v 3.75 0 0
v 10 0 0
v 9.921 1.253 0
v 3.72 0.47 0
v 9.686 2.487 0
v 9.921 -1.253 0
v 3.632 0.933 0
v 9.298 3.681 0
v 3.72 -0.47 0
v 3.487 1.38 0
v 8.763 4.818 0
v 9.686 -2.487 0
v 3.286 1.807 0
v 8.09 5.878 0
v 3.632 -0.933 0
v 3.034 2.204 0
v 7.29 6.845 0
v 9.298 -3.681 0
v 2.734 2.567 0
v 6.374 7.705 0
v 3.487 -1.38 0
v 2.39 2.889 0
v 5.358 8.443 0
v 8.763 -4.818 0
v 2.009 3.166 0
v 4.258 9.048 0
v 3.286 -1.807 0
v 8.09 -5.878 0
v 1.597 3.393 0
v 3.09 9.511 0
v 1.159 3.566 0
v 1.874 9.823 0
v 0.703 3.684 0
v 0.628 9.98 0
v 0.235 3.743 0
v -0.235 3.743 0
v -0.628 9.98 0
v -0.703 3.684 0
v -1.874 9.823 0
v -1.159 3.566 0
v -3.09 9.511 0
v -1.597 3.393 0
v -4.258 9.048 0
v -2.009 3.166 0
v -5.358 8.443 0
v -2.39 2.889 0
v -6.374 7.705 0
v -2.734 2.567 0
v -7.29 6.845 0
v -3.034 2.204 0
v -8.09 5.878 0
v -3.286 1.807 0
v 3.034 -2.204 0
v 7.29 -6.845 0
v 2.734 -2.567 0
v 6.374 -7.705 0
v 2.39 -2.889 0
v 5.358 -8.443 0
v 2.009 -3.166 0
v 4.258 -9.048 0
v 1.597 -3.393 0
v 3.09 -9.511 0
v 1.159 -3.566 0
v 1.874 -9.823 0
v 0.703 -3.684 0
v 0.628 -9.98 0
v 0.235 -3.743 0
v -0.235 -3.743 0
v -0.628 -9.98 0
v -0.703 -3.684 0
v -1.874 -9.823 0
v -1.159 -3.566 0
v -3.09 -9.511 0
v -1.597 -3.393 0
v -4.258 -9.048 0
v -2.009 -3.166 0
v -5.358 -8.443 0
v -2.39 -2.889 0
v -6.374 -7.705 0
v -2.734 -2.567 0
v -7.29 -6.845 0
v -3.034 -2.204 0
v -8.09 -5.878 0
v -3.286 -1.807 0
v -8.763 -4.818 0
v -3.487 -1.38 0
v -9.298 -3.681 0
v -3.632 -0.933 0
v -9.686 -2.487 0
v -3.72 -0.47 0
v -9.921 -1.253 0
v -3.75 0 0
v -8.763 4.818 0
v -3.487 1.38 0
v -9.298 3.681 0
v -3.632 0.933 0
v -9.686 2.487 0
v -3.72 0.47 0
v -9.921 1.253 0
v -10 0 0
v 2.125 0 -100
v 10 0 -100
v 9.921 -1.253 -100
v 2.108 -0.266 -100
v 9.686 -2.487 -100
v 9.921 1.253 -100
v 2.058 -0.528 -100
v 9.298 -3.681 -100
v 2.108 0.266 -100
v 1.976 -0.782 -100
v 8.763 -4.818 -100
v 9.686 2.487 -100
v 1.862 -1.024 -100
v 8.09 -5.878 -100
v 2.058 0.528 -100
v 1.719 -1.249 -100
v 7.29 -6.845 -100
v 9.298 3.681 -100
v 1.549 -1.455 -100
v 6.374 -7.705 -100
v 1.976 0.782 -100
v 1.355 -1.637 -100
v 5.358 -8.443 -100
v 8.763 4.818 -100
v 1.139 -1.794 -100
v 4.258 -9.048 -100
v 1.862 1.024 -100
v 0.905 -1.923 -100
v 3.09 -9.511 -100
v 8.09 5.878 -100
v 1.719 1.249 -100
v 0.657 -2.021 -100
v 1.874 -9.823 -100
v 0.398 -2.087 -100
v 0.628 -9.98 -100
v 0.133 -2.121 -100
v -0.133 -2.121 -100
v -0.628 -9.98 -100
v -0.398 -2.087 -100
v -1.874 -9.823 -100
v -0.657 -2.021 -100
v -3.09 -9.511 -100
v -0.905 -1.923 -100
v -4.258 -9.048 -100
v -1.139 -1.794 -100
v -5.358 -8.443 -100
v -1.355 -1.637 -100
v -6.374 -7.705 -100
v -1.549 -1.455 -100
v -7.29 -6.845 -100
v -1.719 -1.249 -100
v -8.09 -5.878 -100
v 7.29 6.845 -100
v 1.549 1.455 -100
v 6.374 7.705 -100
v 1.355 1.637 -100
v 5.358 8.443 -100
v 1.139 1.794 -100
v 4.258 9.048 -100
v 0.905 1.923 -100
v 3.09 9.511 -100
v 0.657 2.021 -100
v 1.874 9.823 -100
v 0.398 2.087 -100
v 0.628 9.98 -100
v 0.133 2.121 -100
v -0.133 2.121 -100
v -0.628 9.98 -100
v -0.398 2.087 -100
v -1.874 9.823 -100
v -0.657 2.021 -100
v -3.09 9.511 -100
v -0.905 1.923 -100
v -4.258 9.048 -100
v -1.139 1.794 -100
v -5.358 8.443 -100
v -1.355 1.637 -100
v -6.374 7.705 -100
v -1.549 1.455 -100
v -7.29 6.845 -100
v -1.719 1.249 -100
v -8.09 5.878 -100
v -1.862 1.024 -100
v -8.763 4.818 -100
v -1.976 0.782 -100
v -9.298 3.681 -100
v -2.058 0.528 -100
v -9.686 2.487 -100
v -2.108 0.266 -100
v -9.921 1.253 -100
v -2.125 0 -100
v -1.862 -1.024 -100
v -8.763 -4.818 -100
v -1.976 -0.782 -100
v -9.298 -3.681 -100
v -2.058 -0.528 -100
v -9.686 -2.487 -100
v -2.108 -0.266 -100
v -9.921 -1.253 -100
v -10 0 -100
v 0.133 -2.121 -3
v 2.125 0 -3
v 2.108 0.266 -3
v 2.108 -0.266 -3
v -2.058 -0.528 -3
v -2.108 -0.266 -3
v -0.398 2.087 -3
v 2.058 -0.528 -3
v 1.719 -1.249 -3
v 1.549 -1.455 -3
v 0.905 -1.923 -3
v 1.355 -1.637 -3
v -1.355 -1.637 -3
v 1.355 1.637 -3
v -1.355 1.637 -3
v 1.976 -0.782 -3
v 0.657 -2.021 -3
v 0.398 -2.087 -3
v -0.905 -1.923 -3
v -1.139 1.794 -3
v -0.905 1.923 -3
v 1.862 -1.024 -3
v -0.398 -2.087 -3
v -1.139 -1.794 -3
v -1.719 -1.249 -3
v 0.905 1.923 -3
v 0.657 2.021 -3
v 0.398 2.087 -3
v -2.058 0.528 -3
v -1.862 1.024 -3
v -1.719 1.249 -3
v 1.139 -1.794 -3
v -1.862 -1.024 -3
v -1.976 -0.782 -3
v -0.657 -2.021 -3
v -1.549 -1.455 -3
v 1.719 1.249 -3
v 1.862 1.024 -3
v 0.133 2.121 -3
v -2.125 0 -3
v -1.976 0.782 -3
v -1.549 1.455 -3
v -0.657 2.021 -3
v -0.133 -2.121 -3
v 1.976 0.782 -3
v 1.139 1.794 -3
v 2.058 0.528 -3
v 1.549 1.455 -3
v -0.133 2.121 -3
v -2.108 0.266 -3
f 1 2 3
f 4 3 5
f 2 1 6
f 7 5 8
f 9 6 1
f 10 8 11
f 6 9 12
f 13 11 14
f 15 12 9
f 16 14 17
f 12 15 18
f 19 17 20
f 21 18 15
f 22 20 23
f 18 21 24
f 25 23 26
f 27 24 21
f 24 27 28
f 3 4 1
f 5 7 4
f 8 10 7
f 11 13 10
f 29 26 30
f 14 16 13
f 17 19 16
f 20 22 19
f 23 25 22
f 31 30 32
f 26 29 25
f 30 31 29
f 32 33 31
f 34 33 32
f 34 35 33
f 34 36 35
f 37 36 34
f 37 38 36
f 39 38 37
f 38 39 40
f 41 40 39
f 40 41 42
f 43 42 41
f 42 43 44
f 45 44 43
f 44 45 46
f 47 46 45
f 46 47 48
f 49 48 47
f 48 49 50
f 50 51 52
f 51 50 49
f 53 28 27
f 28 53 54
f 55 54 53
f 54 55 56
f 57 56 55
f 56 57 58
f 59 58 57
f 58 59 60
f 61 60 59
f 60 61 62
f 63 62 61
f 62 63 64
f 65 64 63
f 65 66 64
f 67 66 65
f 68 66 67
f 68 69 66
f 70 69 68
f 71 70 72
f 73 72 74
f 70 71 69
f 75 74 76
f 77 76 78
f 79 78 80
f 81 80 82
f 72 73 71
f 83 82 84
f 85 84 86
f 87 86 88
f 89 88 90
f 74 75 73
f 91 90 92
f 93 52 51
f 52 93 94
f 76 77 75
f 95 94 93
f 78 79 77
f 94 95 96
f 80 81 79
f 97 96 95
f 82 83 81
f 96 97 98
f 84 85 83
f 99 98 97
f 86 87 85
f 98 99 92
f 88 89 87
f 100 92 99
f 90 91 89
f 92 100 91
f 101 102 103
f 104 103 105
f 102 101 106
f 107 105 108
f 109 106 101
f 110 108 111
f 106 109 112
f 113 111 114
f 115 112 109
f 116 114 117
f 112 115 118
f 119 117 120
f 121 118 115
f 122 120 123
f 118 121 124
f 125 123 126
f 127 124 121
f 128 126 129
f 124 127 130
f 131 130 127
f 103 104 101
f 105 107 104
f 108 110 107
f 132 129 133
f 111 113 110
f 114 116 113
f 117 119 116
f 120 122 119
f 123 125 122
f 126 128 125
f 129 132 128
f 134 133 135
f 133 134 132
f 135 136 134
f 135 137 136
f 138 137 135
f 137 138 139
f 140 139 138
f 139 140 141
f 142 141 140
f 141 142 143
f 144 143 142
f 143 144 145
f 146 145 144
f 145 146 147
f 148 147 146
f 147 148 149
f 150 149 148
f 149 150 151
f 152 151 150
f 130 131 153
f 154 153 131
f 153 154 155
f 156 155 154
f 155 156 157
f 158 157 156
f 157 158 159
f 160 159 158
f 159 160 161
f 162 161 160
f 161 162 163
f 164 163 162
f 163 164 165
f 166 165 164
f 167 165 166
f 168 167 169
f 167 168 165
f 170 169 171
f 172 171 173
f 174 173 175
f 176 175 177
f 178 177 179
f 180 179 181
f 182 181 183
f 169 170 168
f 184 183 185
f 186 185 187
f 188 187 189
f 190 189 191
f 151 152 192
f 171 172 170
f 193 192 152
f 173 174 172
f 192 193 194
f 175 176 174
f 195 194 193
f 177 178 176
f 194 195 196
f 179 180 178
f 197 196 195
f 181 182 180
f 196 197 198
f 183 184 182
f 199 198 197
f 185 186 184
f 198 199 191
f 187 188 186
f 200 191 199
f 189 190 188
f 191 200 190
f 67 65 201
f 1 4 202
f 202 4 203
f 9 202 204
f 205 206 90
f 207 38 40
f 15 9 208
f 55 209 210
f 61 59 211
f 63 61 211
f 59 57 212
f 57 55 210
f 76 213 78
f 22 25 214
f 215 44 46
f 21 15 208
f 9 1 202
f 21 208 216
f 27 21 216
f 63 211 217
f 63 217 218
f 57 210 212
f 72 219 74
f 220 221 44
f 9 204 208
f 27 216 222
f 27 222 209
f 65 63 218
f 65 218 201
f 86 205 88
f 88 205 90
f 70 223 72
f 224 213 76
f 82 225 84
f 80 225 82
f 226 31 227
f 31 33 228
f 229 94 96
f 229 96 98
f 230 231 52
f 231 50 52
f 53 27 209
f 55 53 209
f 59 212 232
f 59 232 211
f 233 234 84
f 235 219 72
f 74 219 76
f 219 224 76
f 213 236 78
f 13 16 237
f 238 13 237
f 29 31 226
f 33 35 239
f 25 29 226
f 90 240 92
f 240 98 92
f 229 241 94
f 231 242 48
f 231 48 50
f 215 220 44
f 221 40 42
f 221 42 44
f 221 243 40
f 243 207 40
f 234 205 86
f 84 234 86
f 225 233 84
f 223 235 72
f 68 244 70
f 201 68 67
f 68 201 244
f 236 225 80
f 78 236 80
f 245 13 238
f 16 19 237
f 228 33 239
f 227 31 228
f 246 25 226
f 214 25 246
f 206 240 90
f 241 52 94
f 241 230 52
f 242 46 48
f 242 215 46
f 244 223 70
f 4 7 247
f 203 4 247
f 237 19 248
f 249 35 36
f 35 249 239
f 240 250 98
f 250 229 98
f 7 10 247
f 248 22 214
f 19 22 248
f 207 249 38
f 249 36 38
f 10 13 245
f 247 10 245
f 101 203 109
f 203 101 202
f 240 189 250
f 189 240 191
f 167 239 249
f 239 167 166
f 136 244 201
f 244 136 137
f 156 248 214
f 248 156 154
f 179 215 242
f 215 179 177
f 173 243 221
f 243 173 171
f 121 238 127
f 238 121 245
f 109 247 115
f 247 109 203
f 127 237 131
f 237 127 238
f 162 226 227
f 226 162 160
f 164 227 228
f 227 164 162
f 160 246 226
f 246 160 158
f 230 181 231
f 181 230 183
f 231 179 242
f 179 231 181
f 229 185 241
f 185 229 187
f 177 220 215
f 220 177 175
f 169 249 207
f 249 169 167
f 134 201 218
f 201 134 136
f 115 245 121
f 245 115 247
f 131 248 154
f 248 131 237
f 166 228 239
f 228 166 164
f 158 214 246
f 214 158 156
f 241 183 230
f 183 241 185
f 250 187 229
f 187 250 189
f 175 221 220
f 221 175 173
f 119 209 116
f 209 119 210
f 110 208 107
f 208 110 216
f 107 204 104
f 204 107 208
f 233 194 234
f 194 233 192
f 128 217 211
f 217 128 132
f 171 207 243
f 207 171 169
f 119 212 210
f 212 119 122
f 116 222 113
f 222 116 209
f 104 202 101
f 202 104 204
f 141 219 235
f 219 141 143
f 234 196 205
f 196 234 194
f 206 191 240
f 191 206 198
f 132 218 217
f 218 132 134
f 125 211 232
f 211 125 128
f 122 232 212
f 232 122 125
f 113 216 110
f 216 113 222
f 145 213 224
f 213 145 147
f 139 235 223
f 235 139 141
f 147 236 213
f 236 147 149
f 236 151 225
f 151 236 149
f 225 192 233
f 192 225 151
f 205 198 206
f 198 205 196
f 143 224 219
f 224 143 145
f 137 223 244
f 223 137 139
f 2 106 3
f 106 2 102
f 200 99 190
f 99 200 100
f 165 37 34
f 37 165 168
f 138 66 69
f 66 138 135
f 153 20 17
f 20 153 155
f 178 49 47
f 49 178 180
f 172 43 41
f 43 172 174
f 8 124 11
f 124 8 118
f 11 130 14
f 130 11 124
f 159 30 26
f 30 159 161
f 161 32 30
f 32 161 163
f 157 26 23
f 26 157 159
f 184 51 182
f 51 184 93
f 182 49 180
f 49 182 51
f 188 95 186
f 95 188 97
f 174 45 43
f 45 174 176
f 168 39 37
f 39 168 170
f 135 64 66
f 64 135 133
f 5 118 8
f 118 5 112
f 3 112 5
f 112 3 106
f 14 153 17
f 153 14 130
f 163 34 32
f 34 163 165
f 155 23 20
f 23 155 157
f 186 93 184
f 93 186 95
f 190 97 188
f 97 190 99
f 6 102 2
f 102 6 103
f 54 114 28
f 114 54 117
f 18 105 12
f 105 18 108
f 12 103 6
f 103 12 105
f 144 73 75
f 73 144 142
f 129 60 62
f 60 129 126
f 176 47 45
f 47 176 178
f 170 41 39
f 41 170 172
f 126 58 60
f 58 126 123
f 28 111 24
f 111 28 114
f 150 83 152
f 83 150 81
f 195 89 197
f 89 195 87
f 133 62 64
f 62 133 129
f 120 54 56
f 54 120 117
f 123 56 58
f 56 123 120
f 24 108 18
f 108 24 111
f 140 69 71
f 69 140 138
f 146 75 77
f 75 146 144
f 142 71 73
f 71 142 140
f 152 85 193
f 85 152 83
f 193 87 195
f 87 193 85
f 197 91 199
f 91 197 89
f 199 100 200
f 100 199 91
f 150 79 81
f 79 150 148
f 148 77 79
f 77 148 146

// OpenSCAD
$fn = 50;


difference() {
	union() {
		translate(v = [0, 0, -100.0000000000]) {
			cylinder(h = 100, r = 10.0000000000);
		}
	}
	union() {
		translate(v = [0, 0, 0]) {
			rotate(a = [0, 0, 0]) {
				difference() {
					union() {
						#translate(v = [0, 0, -100.0000000000]) {
							cylinder(h = 100, r = 2.0000000000);
						}
						#translate(v = [0, 0, -3]) {
							cylinder(h = 3, r1 = 2.1250000000, r2 = 3.7500000000);
						}
						#translate(v = [0, 0, -100.0000000000]) {
							cylinder(h = 100, r = 2.1250000000);
						}
						#translate(v = [0, 0, -100.0000000000]) {
							cylinder(h = 100, r = 2.0000000000);
						}
					}
					union();
				}
			}
		}
	}
}
